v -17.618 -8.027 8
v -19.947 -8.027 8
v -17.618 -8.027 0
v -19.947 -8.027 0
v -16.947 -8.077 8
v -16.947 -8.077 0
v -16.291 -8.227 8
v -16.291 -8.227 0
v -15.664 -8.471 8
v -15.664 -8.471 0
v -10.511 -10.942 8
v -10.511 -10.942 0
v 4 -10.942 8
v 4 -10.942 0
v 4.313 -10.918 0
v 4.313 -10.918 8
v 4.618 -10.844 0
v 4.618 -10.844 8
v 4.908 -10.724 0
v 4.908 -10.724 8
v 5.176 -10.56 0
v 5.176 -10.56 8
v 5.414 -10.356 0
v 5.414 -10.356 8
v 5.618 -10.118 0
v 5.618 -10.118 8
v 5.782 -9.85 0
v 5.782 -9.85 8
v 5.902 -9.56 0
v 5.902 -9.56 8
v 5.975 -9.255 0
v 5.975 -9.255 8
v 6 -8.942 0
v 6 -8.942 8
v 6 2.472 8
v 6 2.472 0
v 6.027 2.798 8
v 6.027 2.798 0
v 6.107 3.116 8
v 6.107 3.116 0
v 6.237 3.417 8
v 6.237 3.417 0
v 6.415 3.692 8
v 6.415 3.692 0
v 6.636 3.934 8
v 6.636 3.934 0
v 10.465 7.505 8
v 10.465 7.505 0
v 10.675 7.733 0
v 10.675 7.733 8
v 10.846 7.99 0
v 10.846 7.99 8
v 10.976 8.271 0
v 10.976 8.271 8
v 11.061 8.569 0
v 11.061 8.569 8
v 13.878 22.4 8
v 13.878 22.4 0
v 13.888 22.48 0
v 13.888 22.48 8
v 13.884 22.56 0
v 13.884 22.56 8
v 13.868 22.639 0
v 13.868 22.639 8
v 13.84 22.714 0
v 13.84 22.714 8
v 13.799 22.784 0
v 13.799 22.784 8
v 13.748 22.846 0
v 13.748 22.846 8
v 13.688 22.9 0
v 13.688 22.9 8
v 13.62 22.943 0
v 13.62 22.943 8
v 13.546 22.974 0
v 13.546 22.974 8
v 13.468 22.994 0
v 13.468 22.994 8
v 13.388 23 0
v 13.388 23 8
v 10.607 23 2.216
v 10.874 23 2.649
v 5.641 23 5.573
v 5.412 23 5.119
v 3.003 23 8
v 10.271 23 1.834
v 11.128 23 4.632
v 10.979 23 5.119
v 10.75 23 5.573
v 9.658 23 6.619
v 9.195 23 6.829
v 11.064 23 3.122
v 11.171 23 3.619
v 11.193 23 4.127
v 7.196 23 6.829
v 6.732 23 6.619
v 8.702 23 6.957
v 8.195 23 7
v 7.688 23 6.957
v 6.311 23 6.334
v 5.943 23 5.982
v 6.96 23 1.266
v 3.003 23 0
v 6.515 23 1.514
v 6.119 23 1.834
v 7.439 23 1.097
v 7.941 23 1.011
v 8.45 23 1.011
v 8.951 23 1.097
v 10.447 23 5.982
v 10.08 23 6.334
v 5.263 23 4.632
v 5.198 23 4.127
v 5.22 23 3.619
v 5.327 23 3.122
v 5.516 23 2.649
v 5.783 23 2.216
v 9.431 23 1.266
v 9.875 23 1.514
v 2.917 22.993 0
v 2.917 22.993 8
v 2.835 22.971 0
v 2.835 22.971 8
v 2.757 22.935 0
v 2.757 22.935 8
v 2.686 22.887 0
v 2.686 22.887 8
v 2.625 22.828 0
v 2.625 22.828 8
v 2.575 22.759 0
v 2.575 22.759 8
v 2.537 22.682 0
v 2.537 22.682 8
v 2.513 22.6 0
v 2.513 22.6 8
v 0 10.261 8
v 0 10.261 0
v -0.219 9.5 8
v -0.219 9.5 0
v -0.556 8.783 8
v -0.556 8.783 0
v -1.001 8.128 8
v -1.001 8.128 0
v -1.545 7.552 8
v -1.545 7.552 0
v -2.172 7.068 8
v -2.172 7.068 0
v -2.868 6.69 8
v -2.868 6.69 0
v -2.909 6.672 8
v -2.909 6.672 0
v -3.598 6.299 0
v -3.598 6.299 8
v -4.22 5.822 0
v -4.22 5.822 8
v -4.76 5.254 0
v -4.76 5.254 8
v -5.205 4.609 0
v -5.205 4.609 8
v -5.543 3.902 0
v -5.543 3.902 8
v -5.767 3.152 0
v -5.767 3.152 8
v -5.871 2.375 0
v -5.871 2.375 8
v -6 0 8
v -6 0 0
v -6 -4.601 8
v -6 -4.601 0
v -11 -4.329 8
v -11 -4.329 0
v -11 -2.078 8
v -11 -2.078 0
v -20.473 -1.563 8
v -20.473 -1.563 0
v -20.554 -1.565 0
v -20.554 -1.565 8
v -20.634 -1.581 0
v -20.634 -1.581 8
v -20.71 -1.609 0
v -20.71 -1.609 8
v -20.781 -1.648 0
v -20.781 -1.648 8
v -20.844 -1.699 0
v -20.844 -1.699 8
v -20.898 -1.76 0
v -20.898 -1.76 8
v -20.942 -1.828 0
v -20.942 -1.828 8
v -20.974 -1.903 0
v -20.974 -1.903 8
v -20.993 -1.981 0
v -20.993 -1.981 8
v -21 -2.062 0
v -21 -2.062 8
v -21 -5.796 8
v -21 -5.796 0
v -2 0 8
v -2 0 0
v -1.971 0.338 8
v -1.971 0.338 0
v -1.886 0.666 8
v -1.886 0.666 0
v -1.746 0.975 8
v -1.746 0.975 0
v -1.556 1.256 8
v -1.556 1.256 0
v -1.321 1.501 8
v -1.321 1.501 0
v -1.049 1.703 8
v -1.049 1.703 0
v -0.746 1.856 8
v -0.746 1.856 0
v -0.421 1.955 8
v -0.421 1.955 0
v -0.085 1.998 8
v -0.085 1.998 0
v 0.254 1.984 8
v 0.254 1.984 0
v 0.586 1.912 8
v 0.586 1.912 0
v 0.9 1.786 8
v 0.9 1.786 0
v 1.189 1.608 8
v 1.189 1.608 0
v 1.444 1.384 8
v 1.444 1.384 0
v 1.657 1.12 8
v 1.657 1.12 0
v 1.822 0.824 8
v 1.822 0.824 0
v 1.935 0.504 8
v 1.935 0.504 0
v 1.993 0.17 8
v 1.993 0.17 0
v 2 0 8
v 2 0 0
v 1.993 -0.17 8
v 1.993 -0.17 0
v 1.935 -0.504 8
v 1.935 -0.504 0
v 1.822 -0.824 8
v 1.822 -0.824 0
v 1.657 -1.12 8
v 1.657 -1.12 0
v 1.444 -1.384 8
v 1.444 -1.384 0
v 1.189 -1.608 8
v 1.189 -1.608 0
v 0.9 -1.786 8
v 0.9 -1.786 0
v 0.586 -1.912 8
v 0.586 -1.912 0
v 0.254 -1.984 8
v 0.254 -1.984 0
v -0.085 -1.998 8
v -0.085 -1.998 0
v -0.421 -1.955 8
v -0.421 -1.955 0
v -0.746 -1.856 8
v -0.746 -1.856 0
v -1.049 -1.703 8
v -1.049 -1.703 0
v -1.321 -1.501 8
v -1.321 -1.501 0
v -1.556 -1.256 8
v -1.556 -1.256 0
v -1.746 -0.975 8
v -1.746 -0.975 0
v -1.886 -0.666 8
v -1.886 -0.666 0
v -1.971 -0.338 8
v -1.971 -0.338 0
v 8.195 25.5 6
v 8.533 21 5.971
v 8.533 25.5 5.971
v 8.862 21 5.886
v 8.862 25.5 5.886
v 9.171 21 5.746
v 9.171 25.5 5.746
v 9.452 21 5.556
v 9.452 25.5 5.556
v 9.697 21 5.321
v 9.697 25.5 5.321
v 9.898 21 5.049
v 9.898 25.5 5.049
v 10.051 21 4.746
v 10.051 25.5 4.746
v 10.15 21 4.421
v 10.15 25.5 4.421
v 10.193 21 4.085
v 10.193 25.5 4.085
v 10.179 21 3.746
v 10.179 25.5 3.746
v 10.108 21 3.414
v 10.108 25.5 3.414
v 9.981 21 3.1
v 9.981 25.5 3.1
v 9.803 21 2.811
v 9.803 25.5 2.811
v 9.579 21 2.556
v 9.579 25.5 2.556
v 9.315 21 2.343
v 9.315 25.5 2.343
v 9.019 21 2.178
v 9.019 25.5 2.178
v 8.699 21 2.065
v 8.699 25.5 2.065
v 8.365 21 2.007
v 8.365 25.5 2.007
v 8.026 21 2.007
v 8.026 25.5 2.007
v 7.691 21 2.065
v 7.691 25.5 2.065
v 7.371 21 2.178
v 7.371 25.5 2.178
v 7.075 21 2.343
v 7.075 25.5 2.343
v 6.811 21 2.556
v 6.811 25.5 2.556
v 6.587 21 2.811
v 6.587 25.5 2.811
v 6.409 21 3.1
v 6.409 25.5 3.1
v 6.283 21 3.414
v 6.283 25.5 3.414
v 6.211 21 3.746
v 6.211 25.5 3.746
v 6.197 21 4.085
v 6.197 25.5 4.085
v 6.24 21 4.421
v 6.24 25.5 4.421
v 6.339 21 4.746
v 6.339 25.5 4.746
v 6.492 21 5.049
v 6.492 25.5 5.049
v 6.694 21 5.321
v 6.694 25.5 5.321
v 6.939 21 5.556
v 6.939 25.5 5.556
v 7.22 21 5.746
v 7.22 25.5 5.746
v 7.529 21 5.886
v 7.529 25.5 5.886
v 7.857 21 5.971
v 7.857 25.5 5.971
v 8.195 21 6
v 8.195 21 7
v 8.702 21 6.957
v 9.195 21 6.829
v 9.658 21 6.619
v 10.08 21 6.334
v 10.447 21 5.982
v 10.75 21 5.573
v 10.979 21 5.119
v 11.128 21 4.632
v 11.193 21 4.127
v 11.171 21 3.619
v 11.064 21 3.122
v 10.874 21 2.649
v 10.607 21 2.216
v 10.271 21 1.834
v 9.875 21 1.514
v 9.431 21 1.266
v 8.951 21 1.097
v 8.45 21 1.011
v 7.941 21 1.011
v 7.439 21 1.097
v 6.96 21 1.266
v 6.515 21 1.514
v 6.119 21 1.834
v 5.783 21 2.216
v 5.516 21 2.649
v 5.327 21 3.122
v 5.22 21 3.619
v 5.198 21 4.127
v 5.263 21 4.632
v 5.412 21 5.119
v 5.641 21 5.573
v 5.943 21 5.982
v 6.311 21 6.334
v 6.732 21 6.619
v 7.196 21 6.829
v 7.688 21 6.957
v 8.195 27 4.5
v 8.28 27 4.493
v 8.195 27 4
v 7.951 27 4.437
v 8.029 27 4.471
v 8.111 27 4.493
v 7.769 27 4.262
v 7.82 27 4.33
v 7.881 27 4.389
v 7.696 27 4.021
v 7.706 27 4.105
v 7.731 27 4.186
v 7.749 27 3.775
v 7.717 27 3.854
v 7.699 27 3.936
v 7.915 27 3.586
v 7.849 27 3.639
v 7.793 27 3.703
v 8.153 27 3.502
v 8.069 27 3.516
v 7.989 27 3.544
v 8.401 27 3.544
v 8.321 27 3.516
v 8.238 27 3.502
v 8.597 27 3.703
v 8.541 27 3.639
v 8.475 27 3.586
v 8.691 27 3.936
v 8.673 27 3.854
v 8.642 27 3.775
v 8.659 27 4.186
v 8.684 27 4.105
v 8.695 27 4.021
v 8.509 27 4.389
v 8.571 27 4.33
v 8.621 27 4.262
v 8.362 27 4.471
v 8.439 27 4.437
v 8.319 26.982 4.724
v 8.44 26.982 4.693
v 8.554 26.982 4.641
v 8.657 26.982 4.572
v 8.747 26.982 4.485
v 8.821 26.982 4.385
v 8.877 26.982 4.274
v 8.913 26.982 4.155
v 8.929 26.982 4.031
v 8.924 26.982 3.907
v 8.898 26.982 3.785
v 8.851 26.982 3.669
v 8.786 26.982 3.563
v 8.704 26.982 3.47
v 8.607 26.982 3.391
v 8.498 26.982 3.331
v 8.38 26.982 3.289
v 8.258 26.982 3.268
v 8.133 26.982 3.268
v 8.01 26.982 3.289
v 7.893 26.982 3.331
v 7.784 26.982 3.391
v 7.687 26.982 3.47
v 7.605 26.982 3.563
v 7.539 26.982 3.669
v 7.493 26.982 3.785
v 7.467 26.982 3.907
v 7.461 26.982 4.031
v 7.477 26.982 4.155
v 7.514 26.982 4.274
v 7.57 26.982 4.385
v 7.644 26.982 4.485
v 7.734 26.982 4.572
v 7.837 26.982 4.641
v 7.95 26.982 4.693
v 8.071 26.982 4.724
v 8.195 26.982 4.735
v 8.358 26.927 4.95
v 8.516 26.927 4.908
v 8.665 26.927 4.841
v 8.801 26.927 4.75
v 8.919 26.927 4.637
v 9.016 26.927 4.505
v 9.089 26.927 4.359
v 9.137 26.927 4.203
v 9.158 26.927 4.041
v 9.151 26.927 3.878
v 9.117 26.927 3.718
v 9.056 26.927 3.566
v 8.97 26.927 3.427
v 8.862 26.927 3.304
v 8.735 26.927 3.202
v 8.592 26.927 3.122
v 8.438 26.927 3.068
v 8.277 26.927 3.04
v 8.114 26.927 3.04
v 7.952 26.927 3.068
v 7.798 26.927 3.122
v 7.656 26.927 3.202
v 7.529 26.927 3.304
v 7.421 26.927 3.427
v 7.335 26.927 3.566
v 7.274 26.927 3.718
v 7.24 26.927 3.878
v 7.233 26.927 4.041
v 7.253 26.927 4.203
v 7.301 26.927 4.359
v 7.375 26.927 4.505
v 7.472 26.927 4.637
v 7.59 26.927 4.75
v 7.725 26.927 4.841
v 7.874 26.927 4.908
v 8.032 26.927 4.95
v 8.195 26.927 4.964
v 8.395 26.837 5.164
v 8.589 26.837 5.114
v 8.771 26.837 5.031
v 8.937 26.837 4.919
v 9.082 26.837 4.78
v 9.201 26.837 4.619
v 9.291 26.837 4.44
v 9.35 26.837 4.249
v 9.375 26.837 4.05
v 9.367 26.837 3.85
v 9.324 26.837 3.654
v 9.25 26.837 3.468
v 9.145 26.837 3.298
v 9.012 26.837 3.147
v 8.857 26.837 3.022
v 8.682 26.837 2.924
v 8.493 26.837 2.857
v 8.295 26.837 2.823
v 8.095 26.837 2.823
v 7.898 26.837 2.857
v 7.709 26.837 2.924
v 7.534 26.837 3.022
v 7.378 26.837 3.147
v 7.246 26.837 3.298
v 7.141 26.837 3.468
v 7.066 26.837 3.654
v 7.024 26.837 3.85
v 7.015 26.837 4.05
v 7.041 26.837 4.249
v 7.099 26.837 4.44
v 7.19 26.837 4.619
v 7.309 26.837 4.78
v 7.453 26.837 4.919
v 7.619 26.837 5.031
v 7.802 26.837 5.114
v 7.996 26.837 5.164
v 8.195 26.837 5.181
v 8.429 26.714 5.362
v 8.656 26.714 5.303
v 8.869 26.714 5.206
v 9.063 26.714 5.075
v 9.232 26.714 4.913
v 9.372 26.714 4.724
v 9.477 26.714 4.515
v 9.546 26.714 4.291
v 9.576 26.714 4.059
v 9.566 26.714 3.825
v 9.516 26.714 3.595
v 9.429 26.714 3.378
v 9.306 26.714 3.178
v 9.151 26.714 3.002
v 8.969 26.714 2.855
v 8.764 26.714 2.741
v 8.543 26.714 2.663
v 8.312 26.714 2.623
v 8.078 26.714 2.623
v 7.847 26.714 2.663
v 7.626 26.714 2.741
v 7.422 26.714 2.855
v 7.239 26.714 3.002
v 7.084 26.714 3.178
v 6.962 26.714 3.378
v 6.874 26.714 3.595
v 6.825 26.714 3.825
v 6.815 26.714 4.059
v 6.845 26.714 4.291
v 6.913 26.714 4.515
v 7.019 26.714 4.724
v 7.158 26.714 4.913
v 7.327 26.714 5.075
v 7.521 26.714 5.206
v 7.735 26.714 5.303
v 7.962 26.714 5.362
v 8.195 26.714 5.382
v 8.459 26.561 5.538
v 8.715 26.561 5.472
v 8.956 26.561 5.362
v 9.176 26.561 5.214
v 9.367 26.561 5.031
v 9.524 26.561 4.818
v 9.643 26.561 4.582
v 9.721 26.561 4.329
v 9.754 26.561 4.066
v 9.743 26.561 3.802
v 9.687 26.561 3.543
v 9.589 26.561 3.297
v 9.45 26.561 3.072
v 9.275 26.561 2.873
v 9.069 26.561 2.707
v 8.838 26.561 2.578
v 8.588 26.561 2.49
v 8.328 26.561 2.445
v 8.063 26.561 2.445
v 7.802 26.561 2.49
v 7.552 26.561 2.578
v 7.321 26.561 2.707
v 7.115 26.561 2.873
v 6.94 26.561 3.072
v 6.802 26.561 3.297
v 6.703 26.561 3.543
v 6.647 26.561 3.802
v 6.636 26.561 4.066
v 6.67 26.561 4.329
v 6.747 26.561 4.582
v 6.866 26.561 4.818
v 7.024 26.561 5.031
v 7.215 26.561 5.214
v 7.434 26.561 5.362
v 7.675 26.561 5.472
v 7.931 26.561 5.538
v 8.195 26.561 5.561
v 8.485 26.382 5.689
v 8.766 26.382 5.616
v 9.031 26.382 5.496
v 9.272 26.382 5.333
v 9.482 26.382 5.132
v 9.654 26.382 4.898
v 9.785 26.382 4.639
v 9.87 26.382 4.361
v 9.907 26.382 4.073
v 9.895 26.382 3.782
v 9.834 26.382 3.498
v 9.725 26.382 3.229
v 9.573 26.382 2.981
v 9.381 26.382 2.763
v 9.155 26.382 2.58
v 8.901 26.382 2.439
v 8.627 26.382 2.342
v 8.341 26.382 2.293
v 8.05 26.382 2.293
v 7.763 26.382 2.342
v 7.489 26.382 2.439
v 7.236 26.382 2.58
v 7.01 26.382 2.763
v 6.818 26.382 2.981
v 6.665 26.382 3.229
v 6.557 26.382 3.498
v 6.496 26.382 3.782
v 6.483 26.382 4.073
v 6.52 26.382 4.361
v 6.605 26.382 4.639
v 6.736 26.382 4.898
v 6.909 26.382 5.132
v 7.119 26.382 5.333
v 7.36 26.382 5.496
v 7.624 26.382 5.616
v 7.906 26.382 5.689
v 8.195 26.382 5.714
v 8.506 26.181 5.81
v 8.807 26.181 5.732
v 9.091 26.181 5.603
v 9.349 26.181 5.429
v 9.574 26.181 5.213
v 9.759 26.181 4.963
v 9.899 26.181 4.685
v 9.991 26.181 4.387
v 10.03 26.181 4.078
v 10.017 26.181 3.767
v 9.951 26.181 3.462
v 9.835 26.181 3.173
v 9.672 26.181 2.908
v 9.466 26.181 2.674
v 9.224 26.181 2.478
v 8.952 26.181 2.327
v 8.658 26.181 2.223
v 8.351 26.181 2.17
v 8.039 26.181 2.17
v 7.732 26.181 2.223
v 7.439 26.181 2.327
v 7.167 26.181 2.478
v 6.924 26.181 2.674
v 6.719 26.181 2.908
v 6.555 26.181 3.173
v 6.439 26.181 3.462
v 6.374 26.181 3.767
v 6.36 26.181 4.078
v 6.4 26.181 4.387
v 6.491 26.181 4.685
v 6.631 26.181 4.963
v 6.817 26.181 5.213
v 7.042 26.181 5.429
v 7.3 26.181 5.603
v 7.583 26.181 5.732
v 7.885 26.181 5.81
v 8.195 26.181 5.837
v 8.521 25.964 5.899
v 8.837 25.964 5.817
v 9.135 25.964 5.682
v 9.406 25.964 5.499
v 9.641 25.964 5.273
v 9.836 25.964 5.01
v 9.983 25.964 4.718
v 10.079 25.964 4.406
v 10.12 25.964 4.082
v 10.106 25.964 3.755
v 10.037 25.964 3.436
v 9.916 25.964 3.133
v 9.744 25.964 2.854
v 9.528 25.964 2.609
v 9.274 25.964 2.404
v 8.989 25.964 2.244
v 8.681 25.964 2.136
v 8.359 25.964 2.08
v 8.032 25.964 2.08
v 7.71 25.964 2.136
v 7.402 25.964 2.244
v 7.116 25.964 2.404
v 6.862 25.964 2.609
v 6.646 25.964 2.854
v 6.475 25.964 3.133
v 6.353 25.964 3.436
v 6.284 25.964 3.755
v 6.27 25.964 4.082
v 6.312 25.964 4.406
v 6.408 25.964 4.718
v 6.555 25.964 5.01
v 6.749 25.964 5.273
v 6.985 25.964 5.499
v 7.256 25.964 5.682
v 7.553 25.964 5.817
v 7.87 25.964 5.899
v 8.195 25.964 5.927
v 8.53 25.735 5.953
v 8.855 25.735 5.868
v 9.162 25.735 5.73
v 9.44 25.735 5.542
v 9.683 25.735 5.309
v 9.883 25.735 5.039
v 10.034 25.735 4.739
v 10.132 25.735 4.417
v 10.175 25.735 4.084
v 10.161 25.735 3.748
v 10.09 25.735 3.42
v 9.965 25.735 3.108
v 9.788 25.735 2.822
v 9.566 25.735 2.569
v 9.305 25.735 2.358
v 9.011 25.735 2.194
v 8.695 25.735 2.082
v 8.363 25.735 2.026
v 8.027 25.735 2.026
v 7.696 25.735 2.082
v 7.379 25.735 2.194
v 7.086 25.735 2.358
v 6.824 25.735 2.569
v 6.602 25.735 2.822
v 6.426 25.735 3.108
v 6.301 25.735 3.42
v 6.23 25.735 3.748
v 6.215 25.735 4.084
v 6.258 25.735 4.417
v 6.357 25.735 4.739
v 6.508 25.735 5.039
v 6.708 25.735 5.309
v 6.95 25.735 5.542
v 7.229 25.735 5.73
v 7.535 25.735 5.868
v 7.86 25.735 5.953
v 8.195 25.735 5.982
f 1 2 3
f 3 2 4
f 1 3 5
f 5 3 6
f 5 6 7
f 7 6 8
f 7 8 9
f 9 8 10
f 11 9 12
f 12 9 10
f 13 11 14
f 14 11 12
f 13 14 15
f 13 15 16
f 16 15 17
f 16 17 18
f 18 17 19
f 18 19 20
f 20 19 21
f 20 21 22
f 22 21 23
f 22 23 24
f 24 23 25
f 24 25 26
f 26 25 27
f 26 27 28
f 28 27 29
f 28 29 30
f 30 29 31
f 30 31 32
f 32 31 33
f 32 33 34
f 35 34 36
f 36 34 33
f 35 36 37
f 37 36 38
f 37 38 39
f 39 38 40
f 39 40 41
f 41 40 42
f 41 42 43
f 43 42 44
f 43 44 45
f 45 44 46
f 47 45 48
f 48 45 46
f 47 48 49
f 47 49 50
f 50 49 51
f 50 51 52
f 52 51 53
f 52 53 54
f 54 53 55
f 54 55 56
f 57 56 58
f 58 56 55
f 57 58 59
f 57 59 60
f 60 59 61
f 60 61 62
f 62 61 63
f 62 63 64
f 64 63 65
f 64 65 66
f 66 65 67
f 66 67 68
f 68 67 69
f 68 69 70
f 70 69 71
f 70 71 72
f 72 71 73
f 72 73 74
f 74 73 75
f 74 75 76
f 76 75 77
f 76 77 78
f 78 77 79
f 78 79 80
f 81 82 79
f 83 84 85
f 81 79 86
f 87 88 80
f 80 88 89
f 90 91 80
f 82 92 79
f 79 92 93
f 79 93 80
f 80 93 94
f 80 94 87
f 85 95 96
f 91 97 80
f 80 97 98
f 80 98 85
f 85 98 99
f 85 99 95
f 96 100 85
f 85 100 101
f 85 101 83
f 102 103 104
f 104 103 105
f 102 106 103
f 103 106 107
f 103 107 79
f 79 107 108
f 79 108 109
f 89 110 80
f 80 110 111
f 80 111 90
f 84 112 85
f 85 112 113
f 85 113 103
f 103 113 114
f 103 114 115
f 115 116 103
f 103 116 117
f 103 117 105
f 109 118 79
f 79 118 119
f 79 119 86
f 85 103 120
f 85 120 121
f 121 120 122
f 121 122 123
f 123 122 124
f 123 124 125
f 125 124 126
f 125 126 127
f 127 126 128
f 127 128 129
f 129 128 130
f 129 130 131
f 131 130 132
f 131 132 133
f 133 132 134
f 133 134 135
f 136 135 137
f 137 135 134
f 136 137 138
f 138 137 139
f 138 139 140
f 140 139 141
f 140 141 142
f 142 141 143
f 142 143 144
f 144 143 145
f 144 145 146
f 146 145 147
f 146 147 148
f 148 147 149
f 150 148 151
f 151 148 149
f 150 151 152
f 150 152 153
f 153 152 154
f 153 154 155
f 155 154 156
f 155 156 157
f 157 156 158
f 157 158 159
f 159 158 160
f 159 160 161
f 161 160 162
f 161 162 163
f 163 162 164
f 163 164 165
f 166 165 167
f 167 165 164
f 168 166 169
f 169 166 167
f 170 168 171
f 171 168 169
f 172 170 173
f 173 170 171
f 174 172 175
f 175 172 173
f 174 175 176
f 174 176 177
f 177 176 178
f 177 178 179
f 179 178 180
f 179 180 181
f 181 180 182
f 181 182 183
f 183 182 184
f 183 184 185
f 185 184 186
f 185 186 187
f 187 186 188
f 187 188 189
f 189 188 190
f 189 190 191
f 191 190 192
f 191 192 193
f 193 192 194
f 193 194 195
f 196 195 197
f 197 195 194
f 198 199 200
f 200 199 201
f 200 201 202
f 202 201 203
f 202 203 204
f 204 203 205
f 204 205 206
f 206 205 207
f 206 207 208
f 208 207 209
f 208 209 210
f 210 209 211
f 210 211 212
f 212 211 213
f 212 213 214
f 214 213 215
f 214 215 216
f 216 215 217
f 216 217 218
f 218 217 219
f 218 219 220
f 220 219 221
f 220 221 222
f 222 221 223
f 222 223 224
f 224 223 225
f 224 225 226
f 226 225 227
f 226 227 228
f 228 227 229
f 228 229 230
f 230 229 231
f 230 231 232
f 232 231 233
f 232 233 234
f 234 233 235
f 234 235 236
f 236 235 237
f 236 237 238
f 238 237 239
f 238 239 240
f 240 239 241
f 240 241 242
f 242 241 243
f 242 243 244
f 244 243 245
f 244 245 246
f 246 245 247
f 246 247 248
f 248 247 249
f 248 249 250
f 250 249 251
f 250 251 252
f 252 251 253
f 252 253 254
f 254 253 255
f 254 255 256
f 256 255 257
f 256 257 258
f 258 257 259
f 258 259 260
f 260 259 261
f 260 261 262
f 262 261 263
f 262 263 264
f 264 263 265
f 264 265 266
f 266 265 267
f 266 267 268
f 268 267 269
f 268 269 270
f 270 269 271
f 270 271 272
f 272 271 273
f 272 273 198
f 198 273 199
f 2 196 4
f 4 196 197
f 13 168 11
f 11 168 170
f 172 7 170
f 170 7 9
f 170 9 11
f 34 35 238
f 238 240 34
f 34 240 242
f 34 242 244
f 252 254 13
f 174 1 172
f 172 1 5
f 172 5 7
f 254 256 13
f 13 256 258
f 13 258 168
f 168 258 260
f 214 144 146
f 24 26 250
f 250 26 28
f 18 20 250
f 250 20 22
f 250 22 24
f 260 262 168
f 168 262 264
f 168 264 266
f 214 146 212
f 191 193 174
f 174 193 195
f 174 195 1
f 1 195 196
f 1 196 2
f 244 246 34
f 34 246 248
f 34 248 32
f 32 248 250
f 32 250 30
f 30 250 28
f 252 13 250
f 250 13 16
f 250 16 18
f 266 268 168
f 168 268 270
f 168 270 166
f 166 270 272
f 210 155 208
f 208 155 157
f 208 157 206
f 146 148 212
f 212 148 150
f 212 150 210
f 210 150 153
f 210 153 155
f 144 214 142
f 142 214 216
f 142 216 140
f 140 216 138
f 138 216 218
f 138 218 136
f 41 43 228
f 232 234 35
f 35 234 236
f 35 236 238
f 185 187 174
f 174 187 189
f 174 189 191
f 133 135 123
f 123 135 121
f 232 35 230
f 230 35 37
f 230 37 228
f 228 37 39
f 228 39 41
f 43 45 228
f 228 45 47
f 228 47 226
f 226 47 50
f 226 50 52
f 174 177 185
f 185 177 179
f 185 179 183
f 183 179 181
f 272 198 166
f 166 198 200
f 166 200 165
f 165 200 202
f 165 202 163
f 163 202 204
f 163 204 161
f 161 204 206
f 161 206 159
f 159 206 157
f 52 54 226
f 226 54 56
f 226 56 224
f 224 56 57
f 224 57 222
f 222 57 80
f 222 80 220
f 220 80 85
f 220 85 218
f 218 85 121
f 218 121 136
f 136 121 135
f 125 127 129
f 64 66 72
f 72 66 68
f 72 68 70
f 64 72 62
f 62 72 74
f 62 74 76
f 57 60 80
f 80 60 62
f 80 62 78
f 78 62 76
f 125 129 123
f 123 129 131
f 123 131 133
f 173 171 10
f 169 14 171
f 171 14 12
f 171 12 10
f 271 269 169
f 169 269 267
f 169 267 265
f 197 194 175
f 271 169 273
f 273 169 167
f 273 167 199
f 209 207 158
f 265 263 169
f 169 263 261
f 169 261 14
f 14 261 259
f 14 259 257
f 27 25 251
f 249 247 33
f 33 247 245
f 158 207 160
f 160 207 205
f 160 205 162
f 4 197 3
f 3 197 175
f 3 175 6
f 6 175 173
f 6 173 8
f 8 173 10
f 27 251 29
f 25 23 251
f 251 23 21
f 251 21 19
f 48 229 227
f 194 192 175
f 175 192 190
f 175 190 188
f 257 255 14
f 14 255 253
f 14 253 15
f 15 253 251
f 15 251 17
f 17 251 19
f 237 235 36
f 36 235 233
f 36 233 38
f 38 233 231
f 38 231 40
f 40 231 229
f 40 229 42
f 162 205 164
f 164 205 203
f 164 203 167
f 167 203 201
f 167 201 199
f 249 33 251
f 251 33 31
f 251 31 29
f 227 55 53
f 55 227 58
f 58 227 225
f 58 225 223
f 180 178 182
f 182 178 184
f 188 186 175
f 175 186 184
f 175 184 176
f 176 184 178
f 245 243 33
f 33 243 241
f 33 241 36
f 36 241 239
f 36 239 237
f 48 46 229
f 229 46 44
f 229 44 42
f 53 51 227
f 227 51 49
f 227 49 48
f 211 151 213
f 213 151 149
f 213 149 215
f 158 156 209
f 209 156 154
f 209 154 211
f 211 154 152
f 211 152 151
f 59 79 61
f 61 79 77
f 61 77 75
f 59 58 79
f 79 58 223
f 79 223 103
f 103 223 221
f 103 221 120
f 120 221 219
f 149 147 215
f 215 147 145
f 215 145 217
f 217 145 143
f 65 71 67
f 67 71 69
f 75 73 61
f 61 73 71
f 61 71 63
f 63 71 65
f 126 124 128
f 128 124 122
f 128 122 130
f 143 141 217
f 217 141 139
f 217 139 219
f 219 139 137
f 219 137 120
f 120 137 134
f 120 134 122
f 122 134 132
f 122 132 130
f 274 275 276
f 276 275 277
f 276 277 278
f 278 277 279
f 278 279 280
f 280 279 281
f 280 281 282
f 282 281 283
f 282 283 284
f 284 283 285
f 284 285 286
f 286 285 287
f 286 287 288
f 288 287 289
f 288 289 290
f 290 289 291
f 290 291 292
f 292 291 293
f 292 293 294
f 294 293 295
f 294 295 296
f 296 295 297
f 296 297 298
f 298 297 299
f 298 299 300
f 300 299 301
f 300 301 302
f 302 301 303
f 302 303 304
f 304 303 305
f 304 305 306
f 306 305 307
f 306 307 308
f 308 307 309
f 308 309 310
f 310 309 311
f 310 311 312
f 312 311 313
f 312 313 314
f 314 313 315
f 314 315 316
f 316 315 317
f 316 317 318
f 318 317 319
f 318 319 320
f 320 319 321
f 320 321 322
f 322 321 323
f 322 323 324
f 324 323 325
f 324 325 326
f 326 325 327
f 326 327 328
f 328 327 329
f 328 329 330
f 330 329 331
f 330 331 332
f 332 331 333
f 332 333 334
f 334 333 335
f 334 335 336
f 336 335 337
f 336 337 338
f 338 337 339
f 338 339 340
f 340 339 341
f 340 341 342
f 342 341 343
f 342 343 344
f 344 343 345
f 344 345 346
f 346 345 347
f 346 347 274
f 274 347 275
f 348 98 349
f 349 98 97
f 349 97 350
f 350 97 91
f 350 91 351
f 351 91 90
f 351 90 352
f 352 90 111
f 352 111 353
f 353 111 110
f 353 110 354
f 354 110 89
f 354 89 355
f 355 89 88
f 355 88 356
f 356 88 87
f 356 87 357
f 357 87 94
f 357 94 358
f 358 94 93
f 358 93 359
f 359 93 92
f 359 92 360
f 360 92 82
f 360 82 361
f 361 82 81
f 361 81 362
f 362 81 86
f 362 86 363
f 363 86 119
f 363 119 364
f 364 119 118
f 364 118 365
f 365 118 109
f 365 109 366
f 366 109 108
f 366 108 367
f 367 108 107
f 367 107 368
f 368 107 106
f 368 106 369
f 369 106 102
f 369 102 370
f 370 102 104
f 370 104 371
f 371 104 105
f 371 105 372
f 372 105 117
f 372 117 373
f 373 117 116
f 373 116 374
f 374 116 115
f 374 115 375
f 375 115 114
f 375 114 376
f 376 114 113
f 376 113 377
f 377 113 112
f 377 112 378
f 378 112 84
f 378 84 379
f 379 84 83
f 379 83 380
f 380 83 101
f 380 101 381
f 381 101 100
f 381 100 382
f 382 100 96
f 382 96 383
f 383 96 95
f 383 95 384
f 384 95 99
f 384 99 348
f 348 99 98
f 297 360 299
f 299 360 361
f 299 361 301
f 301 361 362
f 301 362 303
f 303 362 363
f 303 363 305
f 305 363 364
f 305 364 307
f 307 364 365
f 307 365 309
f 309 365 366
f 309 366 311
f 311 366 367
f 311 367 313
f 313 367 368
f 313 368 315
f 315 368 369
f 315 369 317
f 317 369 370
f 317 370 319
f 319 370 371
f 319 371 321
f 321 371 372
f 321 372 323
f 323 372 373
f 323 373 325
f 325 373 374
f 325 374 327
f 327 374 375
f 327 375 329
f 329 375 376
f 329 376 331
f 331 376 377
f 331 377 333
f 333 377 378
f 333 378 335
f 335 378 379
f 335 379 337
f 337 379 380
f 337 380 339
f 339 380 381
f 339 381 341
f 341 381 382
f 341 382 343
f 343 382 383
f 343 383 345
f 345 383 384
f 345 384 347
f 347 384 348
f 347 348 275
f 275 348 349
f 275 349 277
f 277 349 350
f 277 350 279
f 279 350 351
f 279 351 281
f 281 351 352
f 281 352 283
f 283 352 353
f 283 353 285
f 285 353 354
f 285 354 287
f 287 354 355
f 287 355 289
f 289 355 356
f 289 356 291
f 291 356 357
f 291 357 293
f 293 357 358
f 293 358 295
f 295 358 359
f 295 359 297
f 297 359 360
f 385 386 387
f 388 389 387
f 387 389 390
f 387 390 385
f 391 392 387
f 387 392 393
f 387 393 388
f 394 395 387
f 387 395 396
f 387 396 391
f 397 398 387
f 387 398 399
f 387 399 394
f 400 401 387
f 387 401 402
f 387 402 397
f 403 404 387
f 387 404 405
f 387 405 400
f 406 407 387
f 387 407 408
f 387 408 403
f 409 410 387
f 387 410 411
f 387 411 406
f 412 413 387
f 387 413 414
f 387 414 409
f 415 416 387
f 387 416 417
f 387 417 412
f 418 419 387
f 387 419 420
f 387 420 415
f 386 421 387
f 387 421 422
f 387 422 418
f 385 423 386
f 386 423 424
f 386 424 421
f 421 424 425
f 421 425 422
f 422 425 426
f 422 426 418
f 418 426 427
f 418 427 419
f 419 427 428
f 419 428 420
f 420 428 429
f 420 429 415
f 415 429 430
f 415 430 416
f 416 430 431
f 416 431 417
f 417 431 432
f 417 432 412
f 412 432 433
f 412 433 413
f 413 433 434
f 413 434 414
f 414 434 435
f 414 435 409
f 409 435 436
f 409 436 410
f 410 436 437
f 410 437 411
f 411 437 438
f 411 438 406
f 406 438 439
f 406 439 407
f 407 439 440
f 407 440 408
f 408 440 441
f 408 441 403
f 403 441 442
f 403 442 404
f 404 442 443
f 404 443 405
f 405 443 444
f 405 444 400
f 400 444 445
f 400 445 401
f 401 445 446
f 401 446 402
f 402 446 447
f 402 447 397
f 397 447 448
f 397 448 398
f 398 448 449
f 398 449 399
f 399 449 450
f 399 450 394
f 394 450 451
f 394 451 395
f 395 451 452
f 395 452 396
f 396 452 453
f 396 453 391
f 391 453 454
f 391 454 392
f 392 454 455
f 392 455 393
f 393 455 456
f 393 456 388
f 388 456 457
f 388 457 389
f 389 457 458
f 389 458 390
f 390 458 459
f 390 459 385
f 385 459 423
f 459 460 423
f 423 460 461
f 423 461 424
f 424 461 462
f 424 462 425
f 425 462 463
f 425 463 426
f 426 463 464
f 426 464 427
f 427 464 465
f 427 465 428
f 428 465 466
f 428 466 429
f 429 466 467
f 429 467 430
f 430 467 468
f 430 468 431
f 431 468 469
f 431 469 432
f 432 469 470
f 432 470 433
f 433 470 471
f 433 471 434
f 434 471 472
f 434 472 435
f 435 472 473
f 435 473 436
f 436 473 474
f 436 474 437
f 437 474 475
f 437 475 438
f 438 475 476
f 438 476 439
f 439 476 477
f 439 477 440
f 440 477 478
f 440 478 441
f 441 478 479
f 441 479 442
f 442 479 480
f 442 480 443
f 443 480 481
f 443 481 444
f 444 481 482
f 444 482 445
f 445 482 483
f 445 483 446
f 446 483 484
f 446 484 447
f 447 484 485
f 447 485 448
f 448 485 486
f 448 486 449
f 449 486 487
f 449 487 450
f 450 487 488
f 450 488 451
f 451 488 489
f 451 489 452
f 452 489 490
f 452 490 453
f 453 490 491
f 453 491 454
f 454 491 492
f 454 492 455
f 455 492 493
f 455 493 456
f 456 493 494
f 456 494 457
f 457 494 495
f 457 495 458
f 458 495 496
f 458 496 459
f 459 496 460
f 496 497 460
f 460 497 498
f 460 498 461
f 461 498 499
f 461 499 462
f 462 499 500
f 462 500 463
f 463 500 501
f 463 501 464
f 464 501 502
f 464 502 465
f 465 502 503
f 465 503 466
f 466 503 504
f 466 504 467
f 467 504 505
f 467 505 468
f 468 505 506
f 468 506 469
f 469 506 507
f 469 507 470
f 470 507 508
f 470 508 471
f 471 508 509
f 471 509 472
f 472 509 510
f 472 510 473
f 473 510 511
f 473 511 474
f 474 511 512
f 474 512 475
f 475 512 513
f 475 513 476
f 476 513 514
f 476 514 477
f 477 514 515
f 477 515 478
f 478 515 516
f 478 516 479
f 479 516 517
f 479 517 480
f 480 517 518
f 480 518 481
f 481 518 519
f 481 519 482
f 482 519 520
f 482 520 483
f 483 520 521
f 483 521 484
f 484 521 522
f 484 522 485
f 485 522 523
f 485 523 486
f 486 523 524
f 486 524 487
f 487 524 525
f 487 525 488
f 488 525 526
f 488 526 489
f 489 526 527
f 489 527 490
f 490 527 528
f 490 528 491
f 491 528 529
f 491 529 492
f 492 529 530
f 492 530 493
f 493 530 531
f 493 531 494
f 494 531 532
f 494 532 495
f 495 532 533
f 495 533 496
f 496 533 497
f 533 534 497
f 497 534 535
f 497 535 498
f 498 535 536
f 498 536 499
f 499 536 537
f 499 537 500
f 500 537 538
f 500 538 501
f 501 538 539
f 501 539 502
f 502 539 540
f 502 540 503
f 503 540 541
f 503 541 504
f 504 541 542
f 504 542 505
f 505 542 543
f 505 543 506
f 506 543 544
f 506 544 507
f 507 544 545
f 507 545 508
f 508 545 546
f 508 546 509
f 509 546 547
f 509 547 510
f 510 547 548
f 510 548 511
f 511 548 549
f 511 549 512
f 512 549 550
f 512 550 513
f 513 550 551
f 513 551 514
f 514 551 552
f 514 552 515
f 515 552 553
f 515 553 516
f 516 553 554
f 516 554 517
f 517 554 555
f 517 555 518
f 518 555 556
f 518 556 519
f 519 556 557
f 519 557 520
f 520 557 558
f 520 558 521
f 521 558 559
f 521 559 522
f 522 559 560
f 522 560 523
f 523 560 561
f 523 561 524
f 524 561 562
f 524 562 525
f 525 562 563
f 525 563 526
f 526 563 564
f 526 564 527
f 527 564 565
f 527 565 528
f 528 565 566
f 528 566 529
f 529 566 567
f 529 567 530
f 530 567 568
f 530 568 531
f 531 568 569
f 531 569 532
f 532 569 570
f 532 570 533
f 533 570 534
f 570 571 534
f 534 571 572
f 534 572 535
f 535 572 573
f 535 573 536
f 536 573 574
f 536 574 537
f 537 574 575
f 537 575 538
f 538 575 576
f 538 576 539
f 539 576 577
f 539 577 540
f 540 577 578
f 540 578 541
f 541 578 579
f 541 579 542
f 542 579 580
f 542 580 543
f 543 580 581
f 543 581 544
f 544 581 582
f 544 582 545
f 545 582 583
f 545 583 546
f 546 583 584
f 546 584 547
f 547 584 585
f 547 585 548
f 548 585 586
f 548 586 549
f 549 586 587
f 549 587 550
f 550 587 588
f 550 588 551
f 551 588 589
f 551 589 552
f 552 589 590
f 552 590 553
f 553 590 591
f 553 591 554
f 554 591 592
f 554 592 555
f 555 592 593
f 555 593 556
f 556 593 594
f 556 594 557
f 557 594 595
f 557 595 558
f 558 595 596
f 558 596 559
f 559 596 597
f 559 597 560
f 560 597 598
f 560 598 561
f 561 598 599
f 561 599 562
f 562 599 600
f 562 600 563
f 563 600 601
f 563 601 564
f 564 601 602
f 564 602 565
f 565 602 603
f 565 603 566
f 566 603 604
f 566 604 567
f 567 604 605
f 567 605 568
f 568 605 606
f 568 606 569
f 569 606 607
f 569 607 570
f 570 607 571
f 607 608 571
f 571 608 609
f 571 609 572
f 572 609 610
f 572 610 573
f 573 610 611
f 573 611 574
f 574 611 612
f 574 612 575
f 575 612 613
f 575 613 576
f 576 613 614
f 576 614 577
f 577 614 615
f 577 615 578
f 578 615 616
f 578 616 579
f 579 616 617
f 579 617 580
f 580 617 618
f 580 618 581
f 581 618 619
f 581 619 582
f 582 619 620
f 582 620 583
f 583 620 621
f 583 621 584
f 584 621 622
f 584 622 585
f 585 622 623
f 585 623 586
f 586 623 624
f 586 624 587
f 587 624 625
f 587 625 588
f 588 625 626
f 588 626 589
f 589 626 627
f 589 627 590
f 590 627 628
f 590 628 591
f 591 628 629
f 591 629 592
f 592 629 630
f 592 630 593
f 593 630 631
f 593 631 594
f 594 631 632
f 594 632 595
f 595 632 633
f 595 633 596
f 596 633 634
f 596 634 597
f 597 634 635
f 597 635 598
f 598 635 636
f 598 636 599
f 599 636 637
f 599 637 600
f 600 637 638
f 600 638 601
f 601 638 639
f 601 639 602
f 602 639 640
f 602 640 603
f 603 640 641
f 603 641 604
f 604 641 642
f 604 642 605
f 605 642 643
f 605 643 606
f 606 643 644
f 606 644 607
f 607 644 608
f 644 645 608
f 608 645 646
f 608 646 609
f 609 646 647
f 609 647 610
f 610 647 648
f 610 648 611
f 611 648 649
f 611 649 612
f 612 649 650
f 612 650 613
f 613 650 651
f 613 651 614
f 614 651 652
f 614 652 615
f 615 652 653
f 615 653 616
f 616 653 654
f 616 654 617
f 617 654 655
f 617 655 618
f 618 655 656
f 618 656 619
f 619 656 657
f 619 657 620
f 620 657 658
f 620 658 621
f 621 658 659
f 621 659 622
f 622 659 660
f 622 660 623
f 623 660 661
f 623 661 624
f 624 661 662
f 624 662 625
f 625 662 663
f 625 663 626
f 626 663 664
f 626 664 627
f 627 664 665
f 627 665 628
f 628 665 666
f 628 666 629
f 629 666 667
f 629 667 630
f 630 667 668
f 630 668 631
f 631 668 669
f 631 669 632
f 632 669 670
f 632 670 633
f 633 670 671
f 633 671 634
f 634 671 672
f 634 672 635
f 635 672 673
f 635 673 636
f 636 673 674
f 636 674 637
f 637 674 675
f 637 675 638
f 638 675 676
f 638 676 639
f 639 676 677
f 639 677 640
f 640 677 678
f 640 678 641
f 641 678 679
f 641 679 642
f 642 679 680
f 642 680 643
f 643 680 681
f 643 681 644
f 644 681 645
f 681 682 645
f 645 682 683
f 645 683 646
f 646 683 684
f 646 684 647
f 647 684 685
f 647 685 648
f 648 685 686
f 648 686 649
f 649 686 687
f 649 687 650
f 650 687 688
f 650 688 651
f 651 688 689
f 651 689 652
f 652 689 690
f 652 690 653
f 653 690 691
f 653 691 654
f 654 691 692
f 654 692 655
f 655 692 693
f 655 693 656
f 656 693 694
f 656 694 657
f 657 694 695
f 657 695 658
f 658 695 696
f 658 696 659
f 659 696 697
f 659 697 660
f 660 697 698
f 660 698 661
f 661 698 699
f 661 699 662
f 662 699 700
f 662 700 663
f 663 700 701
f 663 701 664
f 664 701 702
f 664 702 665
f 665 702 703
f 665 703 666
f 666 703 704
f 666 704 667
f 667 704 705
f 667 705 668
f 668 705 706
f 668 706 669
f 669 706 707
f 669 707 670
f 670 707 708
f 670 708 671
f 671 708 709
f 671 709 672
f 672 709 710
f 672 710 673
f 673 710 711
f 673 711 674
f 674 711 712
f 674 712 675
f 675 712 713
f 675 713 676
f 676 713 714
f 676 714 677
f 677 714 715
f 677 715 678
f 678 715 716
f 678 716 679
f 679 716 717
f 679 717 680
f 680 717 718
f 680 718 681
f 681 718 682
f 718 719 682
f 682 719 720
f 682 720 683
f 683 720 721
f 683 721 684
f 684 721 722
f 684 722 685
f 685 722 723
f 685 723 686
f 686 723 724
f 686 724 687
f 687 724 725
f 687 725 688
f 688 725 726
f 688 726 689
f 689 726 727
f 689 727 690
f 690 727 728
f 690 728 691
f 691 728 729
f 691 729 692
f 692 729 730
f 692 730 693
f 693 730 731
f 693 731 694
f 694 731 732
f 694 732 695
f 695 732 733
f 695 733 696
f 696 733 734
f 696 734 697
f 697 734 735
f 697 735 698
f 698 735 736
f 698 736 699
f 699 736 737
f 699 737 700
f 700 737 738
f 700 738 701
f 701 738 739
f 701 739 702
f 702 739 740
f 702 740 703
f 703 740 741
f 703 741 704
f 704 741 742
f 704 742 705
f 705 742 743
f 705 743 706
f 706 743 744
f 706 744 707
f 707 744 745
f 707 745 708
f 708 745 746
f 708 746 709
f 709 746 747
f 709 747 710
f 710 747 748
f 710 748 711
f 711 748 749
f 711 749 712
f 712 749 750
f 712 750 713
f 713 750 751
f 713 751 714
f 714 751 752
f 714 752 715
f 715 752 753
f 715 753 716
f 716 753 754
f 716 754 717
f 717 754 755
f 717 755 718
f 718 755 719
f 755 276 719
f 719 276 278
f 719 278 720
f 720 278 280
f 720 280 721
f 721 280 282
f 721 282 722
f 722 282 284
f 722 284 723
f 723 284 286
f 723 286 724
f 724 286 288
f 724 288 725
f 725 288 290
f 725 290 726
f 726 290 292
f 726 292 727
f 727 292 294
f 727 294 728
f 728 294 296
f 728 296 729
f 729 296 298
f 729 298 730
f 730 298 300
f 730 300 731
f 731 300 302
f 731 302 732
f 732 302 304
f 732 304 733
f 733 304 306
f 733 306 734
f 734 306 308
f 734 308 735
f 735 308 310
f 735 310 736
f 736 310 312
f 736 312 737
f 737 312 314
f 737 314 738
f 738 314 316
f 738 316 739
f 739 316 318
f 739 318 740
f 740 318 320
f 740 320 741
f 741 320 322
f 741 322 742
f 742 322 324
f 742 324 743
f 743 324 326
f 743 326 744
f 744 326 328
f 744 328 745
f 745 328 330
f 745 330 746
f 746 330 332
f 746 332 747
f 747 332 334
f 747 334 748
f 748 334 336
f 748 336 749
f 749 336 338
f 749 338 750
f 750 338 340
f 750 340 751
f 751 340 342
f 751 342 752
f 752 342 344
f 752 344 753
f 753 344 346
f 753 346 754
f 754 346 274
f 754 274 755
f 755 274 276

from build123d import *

# Parameters (mm, degrees)
SKETCH_1_R          = 2
EXTRUDE_1_DEPTH     = 8
SKETCH_4_R          = 3
SKETCH_4_R_2        = 2
CUT_EXTRUDE_1_DEPTH = 2
EXTRUDE_START       = 4
SKETCH_4_3_R        = 2
EXTRUDE_2_DEPTH     = 4
FILLET_1_R          = 1.5


with BuildPart() as part:
    # 스케치1 → 보스-돌출1 (new body)
    with BuildSketch(Plane.XY):
        with BuildLine():
            Line((6, -8.942177653), (6, 0))
            Line((6, 0), (6, 2.471508524))
            ThreePointArc((6, 2.471508524), (6.165879851, 3.269006662), (6.63600328, 3.934215927))
            Line((6.63600328, 3.934215927), (10.465403959, 7.505189831))
            ThreePointArc((10.465403959, 7.505189831), (10.846309641, 7.990494755), (11.061183494, 8.568801969))
            Line((11.061183494, 8.568801969), (13.877860093, 22.400226184))
            ThreePointArc((13.877860093, 22.400226184), (13.775141356, 22.81631716), (13.387916029, 23))
            Line((13.387916029, 23), (3.002563604, 23))
            ThreePointArc((3.002563604, 23), (2.686246444, 22.887225327), (2.51261954, 22.599773816))
            Line((2.51261954, 22.599773816), (0, 10.261436228))
            ThreePointArc((0, 10.261436228), (-1.001221601, 8.128058241), (-2.868431988, 6.690257248))
            Line((-2.868431988, 6.690257248), (-2.909187531, 6.672140294))
            ThreePointArc((-2.909187531, 6.672140294), (-4.995156756, 4.940562252), (-5.870795397, 2.374848493))
            Line((-5.870795397, 2.374848493), (-5.964585443, 0.650938163))
            Line((-5.964585443, 0.650938163), (-6, 0))
            Line((-6, 0), (-6, -4.601356756))
            Line((-6, -4.601356756), (-11, -4.329329712))
            Line((-11, -4.329329712), (-11, -2.078450028))
            Line((-11, -2.078450028), (-20.472837466, -1.563076433))
            ThreePointArc((-20.472837466, -1.563076433), (-20.84381589, -1.699308287), (-21, -2.062338084))
            Line((-21, -2.062338084), (-21, -5.795614421))
            Line((-21, -5.795614421), (-19.946933303, -8.027214437))
            Line((-19.946933303, -8.027214437), (-17.618068878, -8.027214437))
            ThreePointArc((-17.618068878, -8.027214437), (-16.616104954, -8.139678872), (-15.664006617, -8.471475061))
            Line((-15.664006617, -8.471475061), (-10.511224254, -10.942177653))
            Line((-10.511224254, -10.942177653), (4, -10.942177653))
            ThreePointArc((4, -10.942177653), (5.414213562, -10.356391215), (6, -8.942177653))
        make_face()
        Circle(SKETCH_1_R, mode=Mode.SUBTRACT)
    extrude(amount=EXTRUDE_1_DEPTH)

    # 스케치4 → 컷-돌출1 (cut)
    with BuildSketch(Plane(origin=(0, 23, 0), x_dir=(1, 0, 0), z_dir=(0, 1, 0))):
        with Locations((8.195239817, -4)):
            Circle(SKETCH_4_R)
        with Locations((8.195239817, -4)):
            Circle(SKETCH_4_R_2, mode=Mode.SUBTRACT)
    extrude(amount=-CUT_EXTRUDE_1_DEPTH, mode=Mode.SUBTRACT)

    # 스케치4<3> → 보스-돌출2 (add)
    with BuildSketch(Plane(origin=(0, 23, 0), x_dir=(1, 0, 0), z_dir=(0, 1, 0)).offset(EXTRUDE_START)):
        with Locations((8.195239817, -4)):
            Circle(SKETCH_4_3_R)
    extrude(amount=-EXTRUDE_2_DEPTH)

    # 필렛1
    fillet_1_edges = [part.edges().sort_by_distance(p)[0] for p in [
        (6.195239817, 27, 4),
    ]]
    fillet(fillet_1_edges, radius=FILLET_1_R)


solid = part.part
